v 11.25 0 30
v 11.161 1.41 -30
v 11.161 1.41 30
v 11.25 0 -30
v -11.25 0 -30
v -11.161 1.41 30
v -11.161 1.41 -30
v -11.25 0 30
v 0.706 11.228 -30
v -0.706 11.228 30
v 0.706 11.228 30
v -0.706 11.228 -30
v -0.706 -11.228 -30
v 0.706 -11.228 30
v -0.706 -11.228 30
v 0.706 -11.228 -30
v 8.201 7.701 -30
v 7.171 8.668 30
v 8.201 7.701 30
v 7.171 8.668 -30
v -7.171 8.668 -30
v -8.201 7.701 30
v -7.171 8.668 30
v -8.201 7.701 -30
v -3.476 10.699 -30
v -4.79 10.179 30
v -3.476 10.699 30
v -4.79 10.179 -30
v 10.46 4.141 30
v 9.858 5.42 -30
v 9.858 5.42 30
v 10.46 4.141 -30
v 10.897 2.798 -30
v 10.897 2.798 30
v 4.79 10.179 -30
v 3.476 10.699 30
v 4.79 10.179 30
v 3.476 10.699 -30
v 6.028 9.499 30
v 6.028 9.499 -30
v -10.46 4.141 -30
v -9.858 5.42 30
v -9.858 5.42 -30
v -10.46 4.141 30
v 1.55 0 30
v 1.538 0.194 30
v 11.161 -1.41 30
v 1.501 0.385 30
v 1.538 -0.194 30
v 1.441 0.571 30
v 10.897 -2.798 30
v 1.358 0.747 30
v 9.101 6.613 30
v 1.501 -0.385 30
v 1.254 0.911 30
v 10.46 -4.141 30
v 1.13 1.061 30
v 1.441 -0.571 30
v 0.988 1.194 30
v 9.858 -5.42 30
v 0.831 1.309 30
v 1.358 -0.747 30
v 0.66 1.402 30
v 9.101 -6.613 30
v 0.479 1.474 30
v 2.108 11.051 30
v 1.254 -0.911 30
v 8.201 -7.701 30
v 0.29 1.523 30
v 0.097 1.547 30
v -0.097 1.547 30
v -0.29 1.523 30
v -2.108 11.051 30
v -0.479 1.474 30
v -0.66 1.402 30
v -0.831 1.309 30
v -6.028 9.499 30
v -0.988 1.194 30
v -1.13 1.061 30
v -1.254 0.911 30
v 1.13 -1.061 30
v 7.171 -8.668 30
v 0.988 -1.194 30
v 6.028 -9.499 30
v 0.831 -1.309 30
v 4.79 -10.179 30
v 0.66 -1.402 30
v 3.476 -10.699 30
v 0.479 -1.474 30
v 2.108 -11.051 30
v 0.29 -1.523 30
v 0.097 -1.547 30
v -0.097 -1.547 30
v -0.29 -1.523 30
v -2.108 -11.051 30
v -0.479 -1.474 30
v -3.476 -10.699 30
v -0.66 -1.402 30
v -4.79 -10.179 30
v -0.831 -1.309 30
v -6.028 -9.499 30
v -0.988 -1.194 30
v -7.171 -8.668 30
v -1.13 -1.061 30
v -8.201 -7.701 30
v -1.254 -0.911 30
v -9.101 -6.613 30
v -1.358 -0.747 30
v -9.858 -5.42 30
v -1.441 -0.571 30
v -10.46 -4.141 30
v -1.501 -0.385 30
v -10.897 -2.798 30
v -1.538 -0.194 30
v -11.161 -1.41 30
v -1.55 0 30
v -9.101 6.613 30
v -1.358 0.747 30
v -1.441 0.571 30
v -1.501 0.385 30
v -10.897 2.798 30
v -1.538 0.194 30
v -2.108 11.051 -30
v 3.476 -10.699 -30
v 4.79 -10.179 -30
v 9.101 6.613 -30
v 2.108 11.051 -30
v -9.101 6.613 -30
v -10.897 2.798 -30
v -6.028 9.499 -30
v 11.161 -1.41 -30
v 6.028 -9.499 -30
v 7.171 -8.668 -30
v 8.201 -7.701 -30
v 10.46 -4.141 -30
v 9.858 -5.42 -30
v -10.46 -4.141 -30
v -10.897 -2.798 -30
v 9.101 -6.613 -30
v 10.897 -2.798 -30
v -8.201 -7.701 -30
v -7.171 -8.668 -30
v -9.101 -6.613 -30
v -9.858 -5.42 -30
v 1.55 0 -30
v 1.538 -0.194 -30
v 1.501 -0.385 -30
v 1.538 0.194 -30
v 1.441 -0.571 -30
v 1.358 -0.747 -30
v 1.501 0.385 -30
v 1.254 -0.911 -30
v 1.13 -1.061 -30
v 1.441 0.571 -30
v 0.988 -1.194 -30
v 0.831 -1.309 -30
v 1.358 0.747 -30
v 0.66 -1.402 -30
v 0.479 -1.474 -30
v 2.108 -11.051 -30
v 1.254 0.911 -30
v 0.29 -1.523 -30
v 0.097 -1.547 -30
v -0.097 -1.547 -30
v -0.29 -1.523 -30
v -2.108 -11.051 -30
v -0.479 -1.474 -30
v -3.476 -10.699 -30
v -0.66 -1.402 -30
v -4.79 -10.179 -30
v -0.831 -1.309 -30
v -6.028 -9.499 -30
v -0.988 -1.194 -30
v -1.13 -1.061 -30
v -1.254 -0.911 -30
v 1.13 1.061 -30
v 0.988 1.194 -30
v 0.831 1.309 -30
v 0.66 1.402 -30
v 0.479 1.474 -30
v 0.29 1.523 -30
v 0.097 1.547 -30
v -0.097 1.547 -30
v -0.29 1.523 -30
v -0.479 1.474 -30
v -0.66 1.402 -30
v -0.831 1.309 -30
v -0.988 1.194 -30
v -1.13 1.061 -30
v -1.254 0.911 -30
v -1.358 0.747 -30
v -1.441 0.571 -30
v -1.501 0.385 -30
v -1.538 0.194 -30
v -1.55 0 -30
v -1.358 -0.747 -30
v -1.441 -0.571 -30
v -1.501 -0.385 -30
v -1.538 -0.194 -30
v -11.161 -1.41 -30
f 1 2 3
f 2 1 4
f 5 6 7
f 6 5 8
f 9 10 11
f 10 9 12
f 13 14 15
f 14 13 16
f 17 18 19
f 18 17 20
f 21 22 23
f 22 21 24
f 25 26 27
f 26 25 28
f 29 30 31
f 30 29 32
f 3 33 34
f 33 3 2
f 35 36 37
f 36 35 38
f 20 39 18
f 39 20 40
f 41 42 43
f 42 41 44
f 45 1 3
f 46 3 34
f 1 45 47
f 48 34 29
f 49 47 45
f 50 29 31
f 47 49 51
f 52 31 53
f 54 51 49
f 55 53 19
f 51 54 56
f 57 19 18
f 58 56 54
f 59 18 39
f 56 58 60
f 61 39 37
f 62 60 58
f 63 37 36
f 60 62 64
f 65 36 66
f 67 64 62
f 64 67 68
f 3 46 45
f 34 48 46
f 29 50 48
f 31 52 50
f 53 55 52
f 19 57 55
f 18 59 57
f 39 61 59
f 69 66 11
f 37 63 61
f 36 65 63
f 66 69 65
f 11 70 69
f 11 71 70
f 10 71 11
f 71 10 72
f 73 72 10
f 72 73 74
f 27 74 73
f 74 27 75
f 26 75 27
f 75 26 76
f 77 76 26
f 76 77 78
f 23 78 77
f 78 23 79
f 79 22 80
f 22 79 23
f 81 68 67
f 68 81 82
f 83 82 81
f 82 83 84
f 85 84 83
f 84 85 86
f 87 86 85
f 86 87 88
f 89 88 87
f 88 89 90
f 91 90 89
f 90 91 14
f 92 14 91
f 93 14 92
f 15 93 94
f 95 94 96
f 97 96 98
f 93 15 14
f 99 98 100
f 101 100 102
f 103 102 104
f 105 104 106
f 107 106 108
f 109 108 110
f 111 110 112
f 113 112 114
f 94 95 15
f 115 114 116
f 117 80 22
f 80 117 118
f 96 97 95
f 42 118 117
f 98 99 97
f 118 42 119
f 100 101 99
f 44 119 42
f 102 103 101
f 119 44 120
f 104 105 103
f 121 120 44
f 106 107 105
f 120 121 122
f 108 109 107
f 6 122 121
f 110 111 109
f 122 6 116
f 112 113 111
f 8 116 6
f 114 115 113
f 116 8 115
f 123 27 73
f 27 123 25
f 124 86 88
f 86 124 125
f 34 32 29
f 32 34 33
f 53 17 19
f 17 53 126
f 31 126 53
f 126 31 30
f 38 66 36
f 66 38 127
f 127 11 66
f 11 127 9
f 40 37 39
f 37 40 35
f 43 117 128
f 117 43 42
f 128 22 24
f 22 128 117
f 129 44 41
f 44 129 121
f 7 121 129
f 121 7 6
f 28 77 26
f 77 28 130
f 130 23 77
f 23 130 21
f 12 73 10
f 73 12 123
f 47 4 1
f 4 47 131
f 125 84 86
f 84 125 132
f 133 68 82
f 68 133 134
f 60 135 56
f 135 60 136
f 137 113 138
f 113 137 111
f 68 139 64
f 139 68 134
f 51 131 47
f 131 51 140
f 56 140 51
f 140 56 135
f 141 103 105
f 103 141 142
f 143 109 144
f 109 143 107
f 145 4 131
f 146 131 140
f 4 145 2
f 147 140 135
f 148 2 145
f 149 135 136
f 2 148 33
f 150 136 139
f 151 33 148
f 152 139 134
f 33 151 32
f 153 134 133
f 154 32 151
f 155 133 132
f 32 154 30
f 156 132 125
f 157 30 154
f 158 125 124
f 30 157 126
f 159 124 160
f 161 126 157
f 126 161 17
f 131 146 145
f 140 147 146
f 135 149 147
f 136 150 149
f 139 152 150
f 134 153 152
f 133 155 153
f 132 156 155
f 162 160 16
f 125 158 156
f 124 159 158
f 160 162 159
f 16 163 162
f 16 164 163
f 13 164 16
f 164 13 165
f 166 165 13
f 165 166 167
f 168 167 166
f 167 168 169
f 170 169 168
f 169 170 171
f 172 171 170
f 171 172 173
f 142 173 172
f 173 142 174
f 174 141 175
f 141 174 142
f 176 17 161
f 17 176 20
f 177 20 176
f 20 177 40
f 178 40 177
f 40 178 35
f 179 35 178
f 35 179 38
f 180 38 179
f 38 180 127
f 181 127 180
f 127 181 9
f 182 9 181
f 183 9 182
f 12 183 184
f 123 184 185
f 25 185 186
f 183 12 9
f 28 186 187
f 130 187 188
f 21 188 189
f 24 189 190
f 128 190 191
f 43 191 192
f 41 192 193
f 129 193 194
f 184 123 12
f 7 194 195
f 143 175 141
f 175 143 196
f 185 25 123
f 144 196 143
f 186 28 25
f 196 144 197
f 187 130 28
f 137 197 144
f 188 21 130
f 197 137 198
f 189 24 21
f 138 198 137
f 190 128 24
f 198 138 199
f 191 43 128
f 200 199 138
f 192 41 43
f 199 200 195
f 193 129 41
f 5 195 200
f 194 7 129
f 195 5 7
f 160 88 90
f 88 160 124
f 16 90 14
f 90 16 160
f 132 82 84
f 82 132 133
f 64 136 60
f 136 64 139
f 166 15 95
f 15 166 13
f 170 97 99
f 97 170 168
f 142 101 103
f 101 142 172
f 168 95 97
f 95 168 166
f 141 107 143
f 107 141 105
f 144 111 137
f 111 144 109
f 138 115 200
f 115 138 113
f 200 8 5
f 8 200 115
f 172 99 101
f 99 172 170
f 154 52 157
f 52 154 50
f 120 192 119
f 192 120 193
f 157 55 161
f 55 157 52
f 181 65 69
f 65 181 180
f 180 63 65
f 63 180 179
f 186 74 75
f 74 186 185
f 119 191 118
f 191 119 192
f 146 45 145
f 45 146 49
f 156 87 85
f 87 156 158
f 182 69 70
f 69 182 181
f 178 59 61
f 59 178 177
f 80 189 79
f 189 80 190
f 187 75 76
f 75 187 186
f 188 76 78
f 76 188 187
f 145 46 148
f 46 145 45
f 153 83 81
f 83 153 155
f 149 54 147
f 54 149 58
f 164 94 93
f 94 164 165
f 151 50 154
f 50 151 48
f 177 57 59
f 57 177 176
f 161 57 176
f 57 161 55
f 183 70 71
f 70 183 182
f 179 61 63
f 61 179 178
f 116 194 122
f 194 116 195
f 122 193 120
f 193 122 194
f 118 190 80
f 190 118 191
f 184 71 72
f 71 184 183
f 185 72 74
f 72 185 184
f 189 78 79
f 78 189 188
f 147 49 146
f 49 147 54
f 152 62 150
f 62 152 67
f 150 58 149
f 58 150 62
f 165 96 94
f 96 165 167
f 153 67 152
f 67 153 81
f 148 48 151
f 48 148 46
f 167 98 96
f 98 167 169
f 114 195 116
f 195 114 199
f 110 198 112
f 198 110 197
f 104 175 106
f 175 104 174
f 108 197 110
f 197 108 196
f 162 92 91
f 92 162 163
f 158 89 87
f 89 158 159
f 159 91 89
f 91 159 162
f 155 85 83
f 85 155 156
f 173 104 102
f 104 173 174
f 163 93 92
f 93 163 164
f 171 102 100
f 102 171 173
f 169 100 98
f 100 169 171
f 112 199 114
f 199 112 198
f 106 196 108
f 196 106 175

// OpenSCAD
$fn = 50;


difference() {
	union() {
		translate(v = [0, 0, -30.0000000000]) {
			cylinder(h = 60, r = 11.2500000000);
		}
	}
	union() {
		translate(v = [0, 0, -100.0000000000]) {
			cylinder(h = 200, r = 1.5500000000);
		}
	}
}
